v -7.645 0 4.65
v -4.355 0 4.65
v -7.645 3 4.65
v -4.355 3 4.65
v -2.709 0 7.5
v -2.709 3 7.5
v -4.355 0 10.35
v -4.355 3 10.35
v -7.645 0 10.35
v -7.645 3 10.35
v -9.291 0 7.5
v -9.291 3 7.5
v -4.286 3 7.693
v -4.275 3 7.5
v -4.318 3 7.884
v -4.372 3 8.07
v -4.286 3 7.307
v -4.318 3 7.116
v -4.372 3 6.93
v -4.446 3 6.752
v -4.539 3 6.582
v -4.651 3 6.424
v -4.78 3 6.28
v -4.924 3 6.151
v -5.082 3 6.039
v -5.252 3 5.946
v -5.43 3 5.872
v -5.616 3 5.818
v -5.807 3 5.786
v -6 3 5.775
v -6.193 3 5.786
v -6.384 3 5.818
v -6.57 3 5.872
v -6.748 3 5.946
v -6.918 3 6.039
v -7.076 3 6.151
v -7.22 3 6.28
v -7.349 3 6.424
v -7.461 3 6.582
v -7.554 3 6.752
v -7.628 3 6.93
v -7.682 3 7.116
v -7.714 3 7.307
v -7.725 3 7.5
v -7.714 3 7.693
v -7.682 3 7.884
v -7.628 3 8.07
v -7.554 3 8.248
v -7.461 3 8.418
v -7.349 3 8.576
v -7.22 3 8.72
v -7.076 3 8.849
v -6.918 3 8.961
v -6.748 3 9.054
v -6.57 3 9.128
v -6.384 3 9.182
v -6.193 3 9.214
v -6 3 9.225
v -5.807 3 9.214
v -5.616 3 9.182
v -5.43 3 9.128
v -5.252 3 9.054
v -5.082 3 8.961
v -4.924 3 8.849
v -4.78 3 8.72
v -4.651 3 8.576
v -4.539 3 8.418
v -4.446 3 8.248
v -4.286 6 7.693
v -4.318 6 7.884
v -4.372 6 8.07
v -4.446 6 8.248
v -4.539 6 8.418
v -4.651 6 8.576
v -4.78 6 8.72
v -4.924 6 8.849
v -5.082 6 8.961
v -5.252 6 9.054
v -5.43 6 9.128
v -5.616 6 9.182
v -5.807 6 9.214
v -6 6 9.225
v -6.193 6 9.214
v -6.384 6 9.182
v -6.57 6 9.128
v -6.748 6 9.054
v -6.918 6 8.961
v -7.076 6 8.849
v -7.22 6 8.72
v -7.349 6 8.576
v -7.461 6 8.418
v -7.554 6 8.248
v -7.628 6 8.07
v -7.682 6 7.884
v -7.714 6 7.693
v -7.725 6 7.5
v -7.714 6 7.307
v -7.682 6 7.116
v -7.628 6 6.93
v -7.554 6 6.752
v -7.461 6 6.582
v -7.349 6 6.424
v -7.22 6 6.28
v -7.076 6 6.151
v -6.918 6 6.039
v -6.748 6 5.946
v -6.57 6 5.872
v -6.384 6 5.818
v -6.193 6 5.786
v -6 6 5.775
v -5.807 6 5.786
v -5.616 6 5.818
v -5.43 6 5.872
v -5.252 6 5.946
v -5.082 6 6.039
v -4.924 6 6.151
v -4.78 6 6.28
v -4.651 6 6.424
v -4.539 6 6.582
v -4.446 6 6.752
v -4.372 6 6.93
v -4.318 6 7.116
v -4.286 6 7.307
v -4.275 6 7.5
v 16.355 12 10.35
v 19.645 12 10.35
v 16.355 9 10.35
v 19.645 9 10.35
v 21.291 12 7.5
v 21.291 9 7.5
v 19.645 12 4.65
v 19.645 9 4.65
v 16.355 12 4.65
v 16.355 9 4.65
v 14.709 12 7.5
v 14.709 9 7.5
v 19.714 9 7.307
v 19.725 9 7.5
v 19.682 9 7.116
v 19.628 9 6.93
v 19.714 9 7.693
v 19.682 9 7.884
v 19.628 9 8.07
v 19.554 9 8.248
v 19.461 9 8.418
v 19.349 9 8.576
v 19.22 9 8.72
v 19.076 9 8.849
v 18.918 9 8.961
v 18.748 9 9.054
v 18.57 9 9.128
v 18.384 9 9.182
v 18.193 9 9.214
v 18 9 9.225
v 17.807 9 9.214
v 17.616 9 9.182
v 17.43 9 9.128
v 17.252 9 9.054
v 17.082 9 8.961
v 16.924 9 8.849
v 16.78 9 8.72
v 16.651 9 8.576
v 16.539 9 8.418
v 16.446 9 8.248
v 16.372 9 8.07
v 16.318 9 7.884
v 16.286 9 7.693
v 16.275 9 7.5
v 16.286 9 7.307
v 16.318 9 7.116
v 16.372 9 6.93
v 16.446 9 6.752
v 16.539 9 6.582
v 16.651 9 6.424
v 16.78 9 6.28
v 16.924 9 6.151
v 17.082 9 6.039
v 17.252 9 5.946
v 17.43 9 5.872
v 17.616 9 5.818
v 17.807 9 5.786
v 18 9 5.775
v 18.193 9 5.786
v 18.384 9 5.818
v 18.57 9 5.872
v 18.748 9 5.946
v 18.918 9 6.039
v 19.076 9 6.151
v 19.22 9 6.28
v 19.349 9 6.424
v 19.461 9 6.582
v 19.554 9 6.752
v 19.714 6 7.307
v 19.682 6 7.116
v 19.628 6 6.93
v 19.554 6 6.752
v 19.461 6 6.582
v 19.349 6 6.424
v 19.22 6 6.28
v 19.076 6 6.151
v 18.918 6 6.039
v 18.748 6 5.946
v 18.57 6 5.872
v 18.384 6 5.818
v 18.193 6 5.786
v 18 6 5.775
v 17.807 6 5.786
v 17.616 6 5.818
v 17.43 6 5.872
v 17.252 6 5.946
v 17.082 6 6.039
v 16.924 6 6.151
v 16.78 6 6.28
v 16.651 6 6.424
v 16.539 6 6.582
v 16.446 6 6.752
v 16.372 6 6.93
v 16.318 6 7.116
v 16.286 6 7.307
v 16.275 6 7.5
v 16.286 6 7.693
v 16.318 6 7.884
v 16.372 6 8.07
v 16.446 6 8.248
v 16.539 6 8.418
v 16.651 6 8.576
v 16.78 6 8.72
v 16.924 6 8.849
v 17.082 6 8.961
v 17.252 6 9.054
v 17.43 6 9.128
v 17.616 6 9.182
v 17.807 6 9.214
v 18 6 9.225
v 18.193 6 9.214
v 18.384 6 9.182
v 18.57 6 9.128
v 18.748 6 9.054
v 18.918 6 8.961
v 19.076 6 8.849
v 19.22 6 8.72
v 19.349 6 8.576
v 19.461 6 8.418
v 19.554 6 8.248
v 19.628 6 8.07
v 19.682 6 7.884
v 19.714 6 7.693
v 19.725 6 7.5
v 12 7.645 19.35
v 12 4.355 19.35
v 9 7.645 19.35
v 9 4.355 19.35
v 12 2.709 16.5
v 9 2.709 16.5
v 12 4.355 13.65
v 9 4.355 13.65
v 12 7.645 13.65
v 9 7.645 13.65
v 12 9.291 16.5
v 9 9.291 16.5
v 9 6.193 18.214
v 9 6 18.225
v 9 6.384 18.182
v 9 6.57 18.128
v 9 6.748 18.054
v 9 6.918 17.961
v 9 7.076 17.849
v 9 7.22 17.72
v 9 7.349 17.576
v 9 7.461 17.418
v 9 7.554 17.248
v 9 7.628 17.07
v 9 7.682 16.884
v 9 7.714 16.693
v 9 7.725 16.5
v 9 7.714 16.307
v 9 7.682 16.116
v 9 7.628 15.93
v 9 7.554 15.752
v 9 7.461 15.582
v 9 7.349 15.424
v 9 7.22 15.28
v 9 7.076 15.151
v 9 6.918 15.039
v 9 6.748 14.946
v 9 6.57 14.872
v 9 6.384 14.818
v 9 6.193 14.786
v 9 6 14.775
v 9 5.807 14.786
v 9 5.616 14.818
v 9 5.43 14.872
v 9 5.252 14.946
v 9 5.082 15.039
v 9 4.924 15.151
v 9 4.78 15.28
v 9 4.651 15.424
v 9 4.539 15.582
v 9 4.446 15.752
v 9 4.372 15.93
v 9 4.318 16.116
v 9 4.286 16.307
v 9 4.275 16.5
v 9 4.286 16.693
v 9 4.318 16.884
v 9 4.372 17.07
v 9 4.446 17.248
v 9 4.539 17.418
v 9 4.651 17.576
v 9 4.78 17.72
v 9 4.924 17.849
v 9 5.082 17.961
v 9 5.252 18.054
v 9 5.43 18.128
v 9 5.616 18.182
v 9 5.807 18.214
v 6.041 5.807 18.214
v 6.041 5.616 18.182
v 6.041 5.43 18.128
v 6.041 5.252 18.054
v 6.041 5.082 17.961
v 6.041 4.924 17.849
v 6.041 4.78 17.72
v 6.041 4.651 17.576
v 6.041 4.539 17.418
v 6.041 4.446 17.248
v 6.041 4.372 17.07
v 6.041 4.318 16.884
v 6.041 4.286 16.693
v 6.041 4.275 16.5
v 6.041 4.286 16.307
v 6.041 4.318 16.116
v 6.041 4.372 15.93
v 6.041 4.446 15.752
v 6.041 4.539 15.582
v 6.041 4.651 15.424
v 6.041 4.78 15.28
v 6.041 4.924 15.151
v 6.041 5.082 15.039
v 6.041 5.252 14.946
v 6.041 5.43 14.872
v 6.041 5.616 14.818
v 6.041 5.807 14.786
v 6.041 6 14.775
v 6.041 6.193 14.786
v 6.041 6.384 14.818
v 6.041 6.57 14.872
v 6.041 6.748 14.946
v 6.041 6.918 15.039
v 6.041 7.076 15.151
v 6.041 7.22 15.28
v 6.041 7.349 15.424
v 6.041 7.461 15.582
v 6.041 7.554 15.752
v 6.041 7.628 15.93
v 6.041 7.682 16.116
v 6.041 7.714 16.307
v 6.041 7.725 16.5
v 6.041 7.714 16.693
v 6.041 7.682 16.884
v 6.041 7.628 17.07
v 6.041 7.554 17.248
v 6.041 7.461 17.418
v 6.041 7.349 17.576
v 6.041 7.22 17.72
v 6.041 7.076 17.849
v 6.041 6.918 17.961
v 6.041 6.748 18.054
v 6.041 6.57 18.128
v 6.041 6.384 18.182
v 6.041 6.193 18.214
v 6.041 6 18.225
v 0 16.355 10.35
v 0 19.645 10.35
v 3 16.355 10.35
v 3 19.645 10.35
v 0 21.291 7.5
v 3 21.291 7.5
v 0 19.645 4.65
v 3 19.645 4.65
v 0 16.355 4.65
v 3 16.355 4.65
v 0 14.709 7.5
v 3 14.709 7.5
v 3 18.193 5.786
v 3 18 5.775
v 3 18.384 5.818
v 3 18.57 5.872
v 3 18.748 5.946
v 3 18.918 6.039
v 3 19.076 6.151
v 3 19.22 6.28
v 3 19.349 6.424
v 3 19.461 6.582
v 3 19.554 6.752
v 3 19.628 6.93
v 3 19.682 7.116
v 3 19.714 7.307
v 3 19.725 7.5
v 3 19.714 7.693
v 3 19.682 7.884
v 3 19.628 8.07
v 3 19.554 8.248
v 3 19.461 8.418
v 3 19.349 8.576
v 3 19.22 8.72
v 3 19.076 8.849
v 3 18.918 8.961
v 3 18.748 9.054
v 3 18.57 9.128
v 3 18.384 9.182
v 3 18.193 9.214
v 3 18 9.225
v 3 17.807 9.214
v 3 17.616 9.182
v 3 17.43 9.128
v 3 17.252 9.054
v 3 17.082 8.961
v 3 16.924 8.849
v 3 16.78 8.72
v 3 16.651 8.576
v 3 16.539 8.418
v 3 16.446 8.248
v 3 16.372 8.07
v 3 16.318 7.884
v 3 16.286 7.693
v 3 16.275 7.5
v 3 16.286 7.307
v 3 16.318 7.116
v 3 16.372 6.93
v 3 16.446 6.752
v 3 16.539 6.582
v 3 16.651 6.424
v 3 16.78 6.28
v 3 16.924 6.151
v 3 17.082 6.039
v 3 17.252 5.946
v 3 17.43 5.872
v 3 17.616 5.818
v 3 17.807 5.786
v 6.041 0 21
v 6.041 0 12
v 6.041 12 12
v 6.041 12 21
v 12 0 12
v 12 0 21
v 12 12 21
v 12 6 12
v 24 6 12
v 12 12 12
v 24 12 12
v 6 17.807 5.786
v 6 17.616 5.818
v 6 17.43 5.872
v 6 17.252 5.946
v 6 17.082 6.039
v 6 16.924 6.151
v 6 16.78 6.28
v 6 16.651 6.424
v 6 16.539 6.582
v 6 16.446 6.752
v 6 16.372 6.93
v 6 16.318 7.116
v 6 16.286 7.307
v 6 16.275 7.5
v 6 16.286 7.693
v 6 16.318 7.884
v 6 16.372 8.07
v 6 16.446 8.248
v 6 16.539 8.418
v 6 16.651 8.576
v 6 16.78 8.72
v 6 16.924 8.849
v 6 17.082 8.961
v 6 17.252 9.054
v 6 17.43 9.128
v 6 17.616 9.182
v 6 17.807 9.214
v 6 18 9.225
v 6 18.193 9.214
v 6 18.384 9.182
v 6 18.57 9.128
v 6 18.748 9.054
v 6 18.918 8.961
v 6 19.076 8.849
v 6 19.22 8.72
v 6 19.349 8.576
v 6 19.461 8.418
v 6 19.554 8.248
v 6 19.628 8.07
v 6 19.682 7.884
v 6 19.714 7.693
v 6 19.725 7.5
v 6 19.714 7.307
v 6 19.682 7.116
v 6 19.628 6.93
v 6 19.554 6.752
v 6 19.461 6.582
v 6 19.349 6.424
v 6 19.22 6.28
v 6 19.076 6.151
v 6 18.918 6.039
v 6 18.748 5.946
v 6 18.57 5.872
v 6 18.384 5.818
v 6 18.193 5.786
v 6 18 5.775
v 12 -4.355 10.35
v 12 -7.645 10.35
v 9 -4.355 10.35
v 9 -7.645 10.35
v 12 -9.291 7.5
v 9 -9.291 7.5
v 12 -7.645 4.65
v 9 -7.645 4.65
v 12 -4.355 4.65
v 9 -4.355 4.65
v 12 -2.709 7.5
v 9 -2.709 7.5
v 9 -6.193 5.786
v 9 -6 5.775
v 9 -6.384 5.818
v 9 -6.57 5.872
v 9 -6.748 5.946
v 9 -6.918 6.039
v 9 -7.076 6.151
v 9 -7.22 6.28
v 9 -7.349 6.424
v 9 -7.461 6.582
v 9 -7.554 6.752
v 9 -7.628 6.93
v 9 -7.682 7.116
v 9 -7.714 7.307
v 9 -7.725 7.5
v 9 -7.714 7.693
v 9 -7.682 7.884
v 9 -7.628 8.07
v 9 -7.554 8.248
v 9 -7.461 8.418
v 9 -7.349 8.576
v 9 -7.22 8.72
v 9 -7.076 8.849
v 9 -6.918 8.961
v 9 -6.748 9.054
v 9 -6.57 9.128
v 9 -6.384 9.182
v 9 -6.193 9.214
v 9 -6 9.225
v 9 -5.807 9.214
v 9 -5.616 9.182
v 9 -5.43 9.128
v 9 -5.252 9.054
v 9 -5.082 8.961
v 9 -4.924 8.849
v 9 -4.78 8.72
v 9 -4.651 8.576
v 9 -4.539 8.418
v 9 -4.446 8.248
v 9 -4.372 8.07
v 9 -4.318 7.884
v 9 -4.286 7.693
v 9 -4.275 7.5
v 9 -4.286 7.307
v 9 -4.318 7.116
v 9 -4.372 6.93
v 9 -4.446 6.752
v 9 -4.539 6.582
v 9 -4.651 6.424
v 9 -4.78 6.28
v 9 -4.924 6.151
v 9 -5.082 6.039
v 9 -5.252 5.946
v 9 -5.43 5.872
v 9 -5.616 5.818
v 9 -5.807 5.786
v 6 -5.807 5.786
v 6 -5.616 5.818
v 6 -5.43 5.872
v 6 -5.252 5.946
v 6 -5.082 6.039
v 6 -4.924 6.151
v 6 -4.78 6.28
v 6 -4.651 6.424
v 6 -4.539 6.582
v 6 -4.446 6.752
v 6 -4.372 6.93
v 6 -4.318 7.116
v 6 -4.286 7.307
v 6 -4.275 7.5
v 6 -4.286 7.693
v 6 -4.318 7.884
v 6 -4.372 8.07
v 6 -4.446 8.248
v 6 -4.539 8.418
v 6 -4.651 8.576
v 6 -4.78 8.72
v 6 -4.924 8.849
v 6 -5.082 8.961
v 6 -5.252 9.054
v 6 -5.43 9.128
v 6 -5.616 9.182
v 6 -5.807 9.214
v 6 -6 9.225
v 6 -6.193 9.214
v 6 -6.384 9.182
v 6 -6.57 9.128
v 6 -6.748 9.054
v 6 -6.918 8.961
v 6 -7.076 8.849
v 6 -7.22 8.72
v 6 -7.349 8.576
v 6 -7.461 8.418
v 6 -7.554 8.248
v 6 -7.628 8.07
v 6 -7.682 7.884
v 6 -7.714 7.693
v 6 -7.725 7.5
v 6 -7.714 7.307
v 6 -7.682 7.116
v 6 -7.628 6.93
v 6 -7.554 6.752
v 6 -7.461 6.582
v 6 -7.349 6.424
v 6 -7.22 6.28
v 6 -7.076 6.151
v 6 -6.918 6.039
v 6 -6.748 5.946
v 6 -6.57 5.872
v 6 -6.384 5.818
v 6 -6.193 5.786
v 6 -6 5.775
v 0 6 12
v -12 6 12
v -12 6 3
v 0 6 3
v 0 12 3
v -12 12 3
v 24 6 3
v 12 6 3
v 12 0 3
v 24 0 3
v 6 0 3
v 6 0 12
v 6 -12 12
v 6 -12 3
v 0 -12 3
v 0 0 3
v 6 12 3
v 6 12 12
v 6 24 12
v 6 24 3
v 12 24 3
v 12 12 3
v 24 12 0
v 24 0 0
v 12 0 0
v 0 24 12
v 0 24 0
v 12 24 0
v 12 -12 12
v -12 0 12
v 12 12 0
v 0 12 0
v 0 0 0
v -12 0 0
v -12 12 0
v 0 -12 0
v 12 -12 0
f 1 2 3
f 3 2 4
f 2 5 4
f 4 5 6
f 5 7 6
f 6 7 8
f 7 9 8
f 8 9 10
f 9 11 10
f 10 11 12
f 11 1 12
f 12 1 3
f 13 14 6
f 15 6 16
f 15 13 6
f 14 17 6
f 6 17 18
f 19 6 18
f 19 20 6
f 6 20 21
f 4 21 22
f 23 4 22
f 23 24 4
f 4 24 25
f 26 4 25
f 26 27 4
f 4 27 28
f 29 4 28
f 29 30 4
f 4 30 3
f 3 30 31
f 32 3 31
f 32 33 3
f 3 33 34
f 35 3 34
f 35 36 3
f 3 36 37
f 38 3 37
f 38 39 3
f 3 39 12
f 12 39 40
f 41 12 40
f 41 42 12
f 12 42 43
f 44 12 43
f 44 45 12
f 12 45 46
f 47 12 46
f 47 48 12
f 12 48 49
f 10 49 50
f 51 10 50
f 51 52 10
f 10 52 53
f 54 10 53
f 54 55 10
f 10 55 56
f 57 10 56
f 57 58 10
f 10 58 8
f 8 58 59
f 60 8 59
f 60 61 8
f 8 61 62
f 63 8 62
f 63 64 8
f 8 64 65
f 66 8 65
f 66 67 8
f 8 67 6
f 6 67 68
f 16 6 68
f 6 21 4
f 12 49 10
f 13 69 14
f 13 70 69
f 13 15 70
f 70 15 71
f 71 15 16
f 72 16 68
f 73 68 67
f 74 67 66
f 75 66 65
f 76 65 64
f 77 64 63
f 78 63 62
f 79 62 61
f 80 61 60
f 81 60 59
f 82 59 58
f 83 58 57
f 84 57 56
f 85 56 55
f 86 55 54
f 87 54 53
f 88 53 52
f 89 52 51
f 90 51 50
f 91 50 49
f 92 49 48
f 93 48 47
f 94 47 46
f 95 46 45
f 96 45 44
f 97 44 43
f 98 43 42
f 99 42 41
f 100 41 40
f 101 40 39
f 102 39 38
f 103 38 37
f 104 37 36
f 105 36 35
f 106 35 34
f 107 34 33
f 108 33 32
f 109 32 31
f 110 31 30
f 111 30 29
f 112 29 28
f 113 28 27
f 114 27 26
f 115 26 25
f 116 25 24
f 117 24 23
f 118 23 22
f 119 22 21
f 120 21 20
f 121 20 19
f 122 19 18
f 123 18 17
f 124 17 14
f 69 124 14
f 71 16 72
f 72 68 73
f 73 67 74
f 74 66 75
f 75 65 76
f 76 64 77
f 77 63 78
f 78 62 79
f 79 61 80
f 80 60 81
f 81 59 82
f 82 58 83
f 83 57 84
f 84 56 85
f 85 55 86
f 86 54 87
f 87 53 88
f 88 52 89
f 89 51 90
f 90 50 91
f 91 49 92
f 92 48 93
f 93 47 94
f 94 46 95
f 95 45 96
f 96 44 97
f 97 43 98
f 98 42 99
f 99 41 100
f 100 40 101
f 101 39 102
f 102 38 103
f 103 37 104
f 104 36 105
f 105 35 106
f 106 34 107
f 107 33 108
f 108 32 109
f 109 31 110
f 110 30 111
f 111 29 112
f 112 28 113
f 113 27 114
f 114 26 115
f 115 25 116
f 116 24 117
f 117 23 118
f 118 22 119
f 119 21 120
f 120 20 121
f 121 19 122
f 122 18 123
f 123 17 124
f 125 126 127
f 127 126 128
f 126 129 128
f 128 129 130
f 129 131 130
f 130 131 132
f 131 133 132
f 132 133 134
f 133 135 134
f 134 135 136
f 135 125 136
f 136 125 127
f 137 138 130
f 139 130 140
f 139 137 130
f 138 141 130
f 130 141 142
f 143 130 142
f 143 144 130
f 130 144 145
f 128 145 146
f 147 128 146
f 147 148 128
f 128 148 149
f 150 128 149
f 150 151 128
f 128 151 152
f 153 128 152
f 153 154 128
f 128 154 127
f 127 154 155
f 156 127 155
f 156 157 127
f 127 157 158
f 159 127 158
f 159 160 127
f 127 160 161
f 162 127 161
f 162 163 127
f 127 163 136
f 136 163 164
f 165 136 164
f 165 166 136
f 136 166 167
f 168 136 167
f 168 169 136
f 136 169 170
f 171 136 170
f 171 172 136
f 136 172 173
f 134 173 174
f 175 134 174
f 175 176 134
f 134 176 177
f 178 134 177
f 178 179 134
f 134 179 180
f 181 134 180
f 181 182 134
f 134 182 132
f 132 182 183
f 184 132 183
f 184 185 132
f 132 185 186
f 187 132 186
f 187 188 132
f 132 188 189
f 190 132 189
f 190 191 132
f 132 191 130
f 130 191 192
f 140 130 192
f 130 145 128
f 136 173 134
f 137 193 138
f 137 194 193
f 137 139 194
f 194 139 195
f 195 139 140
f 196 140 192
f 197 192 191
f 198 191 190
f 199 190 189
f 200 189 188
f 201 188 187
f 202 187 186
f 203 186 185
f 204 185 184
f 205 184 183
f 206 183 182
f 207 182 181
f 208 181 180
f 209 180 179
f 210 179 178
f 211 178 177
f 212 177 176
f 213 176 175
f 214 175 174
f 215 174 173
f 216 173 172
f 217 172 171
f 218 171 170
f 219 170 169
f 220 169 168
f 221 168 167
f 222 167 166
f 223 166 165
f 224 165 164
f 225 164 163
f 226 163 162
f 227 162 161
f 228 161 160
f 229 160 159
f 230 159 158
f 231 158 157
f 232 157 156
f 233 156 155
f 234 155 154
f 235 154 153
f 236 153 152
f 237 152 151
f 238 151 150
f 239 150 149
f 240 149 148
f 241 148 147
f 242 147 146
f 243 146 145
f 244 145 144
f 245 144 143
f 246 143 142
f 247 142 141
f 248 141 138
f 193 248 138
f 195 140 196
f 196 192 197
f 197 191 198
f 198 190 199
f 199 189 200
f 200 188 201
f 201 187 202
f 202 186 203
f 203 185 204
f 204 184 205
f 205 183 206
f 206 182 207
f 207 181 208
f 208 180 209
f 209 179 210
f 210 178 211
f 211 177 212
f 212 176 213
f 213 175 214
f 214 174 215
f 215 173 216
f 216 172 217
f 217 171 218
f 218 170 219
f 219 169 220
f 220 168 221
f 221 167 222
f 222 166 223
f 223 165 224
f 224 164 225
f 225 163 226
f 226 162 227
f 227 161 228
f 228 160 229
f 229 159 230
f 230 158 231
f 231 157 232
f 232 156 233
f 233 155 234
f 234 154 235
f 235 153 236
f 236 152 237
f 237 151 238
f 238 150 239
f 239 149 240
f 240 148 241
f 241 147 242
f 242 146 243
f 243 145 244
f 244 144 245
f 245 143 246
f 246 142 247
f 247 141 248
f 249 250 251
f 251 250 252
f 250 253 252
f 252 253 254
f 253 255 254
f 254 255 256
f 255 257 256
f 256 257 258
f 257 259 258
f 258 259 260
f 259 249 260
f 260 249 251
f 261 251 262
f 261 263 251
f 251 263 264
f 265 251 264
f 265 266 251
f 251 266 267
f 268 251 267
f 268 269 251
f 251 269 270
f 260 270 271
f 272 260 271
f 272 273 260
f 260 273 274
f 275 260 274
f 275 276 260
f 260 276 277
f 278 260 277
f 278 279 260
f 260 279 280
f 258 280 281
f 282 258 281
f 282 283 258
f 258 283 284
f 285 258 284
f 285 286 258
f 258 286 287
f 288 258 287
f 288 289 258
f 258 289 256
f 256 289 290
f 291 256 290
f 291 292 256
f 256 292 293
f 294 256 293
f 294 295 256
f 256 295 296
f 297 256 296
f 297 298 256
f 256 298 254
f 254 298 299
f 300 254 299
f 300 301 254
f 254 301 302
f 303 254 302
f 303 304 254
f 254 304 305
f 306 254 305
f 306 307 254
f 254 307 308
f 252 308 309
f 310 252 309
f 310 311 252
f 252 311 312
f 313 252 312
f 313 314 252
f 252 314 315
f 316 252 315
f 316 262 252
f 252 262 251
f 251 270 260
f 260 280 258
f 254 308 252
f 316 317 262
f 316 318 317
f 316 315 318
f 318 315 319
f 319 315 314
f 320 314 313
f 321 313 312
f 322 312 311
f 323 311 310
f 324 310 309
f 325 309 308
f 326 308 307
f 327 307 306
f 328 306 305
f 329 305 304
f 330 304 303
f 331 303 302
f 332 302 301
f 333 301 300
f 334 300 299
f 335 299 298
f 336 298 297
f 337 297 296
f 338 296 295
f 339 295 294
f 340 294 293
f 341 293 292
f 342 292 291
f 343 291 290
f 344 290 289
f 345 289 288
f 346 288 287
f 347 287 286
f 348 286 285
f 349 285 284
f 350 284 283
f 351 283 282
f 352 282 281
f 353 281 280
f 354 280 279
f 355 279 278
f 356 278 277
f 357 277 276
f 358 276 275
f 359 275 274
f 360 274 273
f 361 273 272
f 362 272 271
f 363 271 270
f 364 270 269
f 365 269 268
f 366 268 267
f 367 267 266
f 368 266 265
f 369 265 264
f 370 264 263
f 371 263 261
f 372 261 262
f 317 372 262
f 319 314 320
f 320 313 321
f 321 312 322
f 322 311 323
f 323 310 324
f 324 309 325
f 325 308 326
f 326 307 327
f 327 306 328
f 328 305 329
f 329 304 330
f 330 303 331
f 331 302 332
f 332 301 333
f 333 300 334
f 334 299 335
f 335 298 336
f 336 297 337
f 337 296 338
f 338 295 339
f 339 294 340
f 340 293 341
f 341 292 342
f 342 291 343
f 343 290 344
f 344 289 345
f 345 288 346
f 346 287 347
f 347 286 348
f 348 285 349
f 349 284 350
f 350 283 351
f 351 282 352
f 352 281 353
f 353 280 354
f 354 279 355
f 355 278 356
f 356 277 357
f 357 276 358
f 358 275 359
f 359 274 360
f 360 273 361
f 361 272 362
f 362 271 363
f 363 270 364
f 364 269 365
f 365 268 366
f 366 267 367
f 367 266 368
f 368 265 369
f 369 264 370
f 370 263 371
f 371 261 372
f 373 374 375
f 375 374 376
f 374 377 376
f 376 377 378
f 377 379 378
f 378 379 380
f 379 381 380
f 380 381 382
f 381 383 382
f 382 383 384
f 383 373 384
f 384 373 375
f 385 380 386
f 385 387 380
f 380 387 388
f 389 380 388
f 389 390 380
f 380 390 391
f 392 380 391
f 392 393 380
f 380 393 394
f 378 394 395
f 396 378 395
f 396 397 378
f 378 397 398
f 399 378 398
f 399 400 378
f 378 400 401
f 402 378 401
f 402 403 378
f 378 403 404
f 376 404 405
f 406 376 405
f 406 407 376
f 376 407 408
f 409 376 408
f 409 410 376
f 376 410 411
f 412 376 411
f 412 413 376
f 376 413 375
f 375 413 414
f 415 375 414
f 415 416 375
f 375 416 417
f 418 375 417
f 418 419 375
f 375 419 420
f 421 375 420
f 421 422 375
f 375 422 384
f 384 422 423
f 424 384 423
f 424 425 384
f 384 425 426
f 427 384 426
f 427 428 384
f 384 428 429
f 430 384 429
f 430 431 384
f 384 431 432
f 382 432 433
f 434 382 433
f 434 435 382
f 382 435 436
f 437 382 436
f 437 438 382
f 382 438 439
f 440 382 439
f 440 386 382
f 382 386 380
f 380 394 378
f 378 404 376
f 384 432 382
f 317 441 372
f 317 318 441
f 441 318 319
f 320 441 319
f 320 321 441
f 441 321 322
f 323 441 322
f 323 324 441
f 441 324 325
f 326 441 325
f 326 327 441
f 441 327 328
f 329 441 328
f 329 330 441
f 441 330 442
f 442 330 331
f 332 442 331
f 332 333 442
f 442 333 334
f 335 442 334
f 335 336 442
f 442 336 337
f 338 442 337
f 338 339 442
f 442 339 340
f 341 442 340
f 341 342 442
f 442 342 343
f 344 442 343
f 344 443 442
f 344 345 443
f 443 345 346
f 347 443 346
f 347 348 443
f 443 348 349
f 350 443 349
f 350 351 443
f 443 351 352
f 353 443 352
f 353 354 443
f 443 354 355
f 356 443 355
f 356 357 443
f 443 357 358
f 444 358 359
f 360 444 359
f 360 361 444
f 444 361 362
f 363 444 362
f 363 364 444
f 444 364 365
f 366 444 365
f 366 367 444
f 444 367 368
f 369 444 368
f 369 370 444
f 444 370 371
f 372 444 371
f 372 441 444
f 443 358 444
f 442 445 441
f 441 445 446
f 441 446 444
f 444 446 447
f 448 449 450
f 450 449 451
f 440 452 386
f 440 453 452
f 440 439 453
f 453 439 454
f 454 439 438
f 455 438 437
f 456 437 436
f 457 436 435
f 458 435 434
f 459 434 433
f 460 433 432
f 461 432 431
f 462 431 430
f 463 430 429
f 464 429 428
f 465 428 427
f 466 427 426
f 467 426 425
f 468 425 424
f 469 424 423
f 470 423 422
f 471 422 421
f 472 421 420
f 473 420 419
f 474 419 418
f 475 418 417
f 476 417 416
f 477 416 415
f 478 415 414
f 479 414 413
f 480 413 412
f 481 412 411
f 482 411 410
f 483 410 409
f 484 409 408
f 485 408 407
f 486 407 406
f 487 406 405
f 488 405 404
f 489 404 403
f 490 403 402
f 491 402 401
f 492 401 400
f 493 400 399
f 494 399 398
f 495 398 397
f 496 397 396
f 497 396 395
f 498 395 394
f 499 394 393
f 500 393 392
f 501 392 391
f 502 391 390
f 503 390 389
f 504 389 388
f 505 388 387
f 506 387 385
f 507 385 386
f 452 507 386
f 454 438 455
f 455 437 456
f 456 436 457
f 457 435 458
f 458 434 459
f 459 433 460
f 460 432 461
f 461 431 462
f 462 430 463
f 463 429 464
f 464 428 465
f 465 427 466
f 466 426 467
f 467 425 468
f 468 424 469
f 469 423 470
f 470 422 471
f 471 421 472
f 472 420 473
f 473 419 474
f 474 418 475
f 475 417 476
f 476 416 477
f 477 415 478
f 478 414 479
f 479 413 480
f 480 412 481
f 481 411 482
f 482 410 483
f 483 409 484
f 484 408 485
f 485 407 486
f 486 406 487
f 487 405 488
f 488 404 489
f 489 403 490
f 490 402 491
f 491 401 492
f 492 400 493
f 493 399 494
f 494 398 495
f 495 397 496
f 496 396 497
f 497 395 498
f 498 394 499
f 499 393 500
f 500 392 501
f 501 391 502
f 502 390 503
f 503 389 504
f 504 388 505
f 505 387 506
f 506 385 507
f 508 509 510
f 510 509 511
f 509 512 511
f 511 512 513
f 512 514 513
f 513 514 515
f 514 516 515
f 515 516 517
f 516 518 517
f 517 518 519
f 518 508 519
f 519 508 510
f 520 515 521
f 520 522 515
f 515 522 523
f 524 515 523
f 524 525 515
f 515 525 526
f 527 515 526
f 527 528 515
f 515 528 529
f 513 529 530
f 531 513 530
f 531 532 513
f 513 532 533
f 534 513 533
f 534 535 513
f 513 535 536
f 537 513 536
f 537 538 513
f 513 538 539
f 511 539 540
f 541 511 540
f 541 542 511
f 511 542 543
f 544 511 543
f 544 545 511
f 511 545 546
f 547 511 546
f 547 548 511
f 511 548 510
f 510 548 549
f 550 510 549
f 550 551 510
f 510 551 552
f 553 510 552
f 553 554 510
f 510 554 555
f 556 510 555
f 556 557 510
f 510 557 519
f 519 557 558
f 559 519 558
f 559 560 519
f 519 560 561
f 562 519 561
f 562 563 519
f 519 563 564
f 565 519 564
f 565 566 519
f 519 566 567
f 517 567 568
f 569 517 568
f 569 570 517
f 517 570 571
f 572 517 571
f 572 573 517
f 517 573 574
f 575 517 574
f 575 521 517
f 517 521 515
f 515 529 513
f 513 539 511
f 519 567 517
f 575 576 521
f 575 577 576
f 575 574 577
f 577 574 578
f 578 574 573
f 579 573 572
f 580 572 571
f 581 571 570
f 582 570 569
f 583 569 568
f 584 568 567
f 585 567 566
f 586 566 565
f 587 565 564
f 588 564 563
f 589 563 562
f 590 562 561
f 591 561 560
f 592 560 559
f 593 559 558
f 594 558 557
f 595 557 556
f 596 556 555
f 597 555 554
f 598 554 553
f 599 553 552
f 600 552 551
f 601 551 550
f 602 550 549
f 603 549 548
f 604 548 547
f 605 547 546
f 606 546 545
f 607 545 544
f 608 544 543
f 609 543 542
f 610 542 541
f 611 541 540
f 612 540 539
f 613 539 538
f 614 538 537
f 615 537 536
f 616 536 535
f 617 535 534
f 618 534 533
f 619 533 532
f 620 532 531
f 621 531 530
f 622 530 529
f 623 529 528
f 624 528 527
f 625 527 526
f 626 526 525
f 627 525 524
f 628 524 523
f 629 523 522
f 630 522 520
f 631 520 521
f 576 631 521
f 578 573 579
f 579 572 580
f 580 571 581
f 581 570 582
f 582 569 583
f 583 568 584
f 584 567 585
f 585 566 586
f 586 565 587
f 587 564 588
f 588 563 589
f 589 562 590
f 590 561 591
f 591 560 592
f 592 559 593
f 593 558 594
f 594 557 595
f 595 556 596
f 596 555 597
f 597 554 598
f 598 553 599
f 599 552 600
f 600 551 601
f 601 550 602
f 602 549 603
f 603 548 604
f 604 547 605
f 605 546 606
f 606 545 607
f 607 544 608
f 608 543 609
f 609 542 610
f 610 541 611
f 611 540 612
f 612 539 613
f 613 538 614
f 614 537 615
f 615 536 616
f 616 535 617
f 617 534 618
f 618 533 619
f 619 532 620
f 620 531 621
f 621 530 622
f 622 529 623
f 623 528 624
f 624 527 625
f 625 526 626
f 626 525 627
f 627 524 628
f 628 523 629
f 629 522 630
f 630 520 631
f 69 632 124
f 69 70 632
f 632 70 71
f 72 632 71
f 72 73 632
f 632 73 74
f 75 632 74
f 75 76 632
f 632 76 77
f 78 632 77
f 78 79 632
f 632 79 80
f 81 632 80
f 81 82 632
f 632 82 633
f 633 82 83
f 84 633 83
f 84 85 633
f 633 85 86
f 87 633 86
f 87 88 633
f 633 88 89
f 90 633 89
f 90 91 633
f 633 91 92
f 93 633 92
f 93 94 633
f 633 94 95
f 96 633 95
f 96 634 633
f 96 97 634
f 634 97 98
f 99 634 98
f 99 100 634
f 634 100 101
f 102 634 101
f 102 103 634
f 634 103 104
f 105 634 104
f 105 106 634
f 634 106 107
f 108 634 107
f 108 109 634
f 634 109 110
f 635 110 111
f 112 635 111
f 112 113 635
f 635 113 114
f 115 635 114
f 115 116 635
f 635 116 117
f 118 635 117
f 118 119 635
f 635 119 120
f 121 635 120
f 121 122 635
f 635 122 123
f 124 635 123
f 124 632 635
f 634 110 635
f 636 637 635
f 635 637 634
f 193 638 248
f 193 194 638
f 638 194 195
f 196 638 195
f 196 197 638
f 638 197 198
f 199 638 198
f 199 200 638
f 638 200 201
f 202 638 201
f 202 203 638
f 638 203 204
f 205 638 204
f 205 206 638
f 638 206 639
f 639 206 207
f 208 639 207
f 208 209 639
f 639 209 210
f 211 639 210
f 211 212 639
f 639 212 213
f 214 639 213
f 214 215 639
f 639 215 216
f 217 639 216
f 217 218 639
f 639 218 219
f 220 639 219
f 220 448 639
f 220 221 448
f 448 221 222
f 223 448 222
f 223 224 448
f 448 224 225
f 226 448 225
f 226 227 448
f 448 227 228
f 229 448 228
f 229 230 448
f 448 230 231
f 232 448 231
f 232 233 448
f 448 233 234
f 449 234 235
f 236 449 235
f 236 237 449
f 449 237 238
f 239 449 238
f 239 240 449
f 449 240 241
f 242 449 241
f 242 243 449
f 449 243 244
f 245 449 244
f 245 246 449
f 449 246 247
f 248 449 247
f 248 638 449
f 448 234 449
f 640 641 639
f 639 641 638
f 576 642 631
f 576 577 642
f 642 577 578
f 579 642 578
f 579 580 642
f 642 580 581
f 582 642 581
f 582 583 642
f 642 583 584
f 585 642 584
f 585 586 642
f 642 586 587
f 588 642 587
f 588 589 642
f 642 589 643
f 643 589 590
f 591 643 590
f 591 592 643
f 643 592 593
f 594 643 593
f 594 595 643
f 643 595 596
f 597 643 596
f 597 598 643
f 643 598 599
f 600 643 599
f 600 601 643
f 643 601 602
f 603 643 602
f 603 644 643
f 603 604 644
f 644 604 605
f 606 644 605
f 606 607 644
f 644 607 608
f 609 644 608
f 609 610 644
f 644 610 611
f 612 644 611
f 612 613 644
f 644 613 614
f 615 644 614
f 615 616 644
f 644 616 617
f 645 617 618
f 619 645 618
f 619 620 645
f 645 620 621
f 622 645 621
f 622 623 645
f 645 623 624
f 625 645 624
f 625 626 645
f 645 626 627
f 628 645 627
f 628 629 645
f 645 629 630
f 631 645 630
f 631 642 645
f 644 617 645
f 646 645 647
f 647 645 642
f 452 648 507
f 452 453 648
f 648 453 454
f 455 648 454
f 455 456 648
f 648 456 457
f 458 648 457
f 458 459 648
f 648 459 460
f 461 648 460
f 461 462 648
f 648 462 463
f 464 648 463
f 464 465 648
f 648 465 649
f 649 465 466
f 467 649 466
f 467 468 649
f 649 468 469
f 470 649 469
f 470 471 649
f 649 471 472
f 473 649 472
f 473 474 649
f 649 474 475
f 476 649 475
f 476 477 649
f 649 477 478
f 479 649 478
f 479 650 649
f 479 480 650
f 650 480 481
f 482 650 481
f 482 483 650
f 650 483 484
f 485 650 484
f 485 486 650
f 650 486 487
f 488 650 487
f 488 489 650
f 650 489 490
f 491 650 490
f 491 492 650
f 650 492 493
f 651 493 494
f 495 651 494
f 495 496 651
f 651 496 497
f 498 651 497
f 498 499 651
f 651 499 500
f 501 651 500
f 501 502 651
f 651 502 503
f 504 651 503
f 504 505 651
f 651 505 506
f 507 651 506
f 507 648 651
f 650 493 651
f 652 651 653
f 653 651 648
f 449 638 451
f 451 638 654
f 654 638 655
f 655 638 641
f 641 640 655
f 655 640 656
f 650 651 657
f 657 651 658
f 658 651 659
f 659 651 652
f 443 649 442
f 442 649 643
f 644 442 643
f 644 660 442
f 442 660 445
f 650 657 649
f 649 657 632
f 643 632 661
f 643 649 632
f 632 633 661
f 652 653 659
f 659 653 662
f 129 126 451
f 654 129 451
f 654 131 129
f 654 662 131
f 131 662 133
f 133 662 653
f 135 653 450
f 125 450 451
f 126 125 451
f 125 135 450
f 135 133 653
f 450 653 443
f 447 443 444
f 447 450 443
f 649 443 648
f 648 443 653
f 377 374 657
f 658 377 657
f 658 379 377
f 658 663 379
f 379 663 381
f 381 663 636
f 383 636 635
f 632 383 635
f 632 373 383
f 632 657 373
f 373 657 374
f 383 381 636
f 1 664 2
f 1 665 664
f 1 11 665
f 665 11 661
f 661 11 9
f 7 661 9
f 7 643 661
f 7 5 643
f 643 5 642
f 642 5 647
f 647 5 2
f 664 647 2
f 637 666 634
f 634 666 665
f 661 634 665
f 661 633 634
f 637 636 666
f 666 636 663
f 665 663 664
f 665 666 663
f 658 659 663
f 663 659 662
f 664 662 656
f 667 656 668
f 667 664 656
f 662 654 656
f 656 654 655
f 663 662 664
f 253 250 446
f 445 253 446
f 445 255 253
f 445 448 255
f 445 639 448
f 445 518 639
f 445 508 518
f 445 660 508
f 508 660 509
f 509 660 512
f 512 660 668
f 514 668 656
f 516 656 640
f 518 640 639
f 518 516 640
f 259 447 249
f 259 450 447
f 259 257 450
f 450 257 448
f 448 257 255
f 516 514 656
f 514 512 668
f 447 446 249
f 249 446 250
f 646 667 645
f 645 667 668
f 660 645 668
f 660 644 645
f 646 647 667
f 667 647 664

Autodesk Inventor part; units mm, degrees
ref_plane "YZ Plane" through (0, 0, 0) normal (1, 0, 0) x (0, 1, 0)
ref_plane "XZ Plane" through (0, 0, 0) normal (0, 1, 0) x (-1, 0, 0)
ref_plane "XY Plane" through (0, 0, 0) normal (0, 0, 1) x (1, 0, 0)
sketch "Sketch1" plane through (0, 0, 0) normal (0, 0, 1) x (1, 0, 0)
  line L0 (0, 0) -> (12, 0)
  line L1 (12, 0) -> (12, 12)
  line L2 (12, 12) -> (0, 12)
  line L3 (0, 12) -> (0, 0)
  line L4 (12, 12) -> (24, 12)
  line L5 (24, 12) -> (24, 0)
  line L6 (24, 0) -> (12, 0)
  line L7 (12, 0) -> (12, 12)
  line L8 (0, 0) -> (-12, 0)
  line L9 (-12, 0) -> (-12, 12)
  line L10 (-12, 12) -> (0, 12)
  line L11 (0, 12) -> (0, 0)
  line L12 (0, 0) -> (12, 0)
  line L13 (12, 0) -> (12, -12)
  line L14 (12, -12) -> (0, -12)
  line L15 (0, -12) -> (0, 0)
  line L16 (0, 12) -> (12, 12)
  line L17 (12, 12) -> (12, 24)
  line L18 (12, 24) -> (0, 24)
  line L19 (0, 24) -> (0, 12)
  dimension "d0" = 12
  dimension "d1" = 12
  dimension "d2" = 12
  dimension "d3" = 12
  dimension "d4" = 12
  dimension "d5" = 12
  dimension "d6" = 12
  dimension "d7" = 12
  dimension "d8" = 12
  dimension "d9" = 12
extrude "Extrusion1" add sketch "Sketch1" along normal blind 12
sketch "Sketch2" plane through (0, 0, 12) normal (0, 0, 1) x (1, 0, 0)
  line L0 (0, 0) -> (0, -12) projected
  line L1 (0, 0) -> (0, 12)
  line L2 (12, 12) -> (12, 24) projected
  line L3 (0, 12) -> (12, 12)
  line L4 (12, -12) -> (12, 0) projected
  line L5 (12, 12) -> (12, 0)
  line L6 (12, 0) -> (0, 0)
  line L7 (0, 6) -> (-12, 6)
  line L8 (-12, 12) -> (-12, 0) projected
  line L9 (12, 6) -> (24, 6)
  line L10 (24, 0) -> (24, 12) projected
  line L11 (6, 12) -> (6, 24)
  line L12 (6, 0) -> (6, -12)
  line L13 (0, -12) -> (12, -12) projected
  line L14 (-12, 6) -> (-12, 12)
  line L15 (0, 12) -> (-12, 12) projected
  line L16 (0, 12) -> (-12, 12)
  line L17 (12, 24) -> (0, 24) projected
  line L18 (6, 24) -> (12, 24)
  line L19 (12, 24) -> (12, 12)
  line L20 (24, 6) -> (24, 0)
  line L21 (6, -12) -> (0, -12)
  line L22 (12, 0) -> (24, 0)
extrude "Extrusion2" cut sketch "Sketch2" against normal blind 9 contours L6 L12 L13 L0 | L7 L8 L15 L1 | L5 L9 L10 L22 | L11 L17 L2 L3
sketch "Sketch3" plane through (6, 12, 12) normal (1, 0, 0) x (0, 0, -1)
  circle A0 centre (4.5, -18) radius 1.725
  line L0 (0, -24) -> (9, -24) projected
  line L1 (9, -24) -> (9, -12) projected
  point P0 (12, -12)
  dimension "d14" = 3.45
  dimension "d15" = 6
  dimension "d16" = 4.5
extrude "Extrusion3" cut sketch "Sketch3" along normal blind 3
sketch "Sketch4" plane through (12, -12, 0) normal (1, 0, 0) x (0, 0, -1)
  circle A0 centre (-7.5, 6) radius 1.725 projected
  line L0 (-10.35, 7.6454) -> (-7.5, 9.2909)
  line L1 (-7.5, 9.2909) -> (-4.65, 7.6454)
  line L2 (-4.65, 7.6454) -> (-4.65, 4.3546)
  line L3 (-4.65, 4.3546) -> (-7.5, 2.7091)
  line L4 (-7.5, 2.7091) -> (-10.35, 4.3546)
  line L5 (-10.35, 4.3546) -> (-10.35, 7.6454)
  point P0 (0, 12)
  dimension "d19" = 2.85
extrude "Extrusion4" cut sketch "Sketch4" against normal blind 3 contours A0 | L0 L1 L2 L3 L4 L5
sketch "Sketch5" plane through (6, 12, 12) normal (1, 0, 0) x (0, 0, -1)
  circle A0 centre (4.5, 6) radius 1.725
  line L0 (12, 12) -> (0, 12) projected
  line L1 (0, 0) -> (0, 12) projected
  point P0 (12, -12)
  dimension "d22" = 3.45
  dimension "d23" = 6
  dimension "d24" = 4.5
extrude "Extrusion5" cut sketch "Sketch5" against normal blind 3
sketch "Sketch6" plane through (0, 12, 0) normal (-1, 0, 0) x (0, 0, 1)
  circle A0 centre (7.5, 6) radius 1.725 projected
  line L0 (10.35, 4.3546) -> (7.5, 2.7091)
  line L1 (7.5, 2.7091) -> (4.65, 4.3546)
  line L2 (4.65, 4.3546) -> (4.65, 7.6454)
  line L3 (4.65, 7.6454) -> (7.5, 9.2909)
  line L4 (7.5, 9.2909) -> (10.35, 7.6454)
  line L5 (10.35, 7.6454) -> (10.35, 4.3546)
  point P0 (0, -12)
  dimension "d27" = 2.85
sketch "Sketch7" plane through (0, 0, 12) normal (0, 0, 1) x (1, 0, 0)
  line L0 (6, 12) -> (6, 24) projected
  line L1 (6.0413, 0) -> (6, 0)
  line L2 (6, 0) -> (6, 12)
  line L3 (6, 12) -> (6.0413, 12)
  line L4 (6.0413, 12) -> (6.0413, 0)
  line L5 (12, 0) -> (12, 6) projected
  line L6 (12, 0) -> (12, 12)
  line L7 (24, 12) -> (6, 12) projected
  line L8 (6, 0) -> (12, 0)
  point P0 (0, 0)
extrude "Extrusion6" add sketch "Sketch7" along normal blind 9 contours L4 L7 L6 L5 L8
extrude "Extrusion7" cut sketch "Sketch6" against normal blind 3 contours A0 | L0 L1 L2 L3 L4 L5
sketch "Sketch8" plane through (12, 12, 0) normal (0, 1, 0) x (1, 0, 0)
  point P0 (-12, 0)
sketch "Sketch9" plane through (12, -12, 0) normal (1, 0, 0) x (0, 0, -1)
  point P0 (0, 12)
sketch "Sketch10" plane through (12, -12, 0) normal (1, 0, 0) x (0, 0, -1)
  point P0 (0, 12)
sketch "Sketch11" plane through (6.0413, 0, 12) normal (-1, 0, 0) x (0, 0, 1)
  circle A0 centre (4.5, 6) radius 1.725
  line L0 (9, 0) -> (0, 0) projected
  line L1 (9, 12) -> (9, 0) projected
  point P0 (-12, 0)
  dimension "d32" = 3.45
  dimension "d33" = 6
  dimension "d34" = 4.5
extrude "Extrusion8" cut sketch "Sketch11" against normal blind 3
sketch "Sketch12" plane through (12, -12, 0) normal (1, 0, 0) x (0, 0, -1)
  point P0 (0, 12)
sketch "Sketch13" plane through (12, -12, 0) normal (1, 0, 0) x (0, 0, -1)
  circle A0 centre (-16.5, 18) radius 1.725 projected
  line L0 (-19.35, 19.6454) -> (-16.5, 21.2909)
  line L1 (-16.5, 21.2909) -> (-13.65, 19.6454)
  line L2 (-13.65, 19.6454) -> (-13.65, 16.3546)
  line L3 (-13.65, 16.3546) -> (-16.5, 14.7091)
  line L4 (-16.5, 14.7091) -> (-19.35, 16.3546)
  line L5 (-19.35, 16.3546) -> (-19.35, 19.6454)
  point P0 (0, 12)
  dimension "d37" = 2.85
extrude "Extrusion9" cut sketch "Sketch13" against normal blind 3 contours A0 | L0 L1 L2 L3 L4 L5
sketch "Sketch14" plane through (12, 6, 12) normal (0, -1, 0) x (1, 0, 0)
  circle A0 centre (6, -4.5) radius 1.725
  line L0 (0, 0) -> (12, 0) projected
  line L1 (12, 0) -> (12, -9) projected
  point P0 (-12, -12)
  dimension "d40" = 3.45
  dimension "d41" = 4.5
  dimension "d42" = 6
extrude "Extrusion10" cut sketch "Sketch14" against normal blind 3
sketch "Sketch15" plane through (12, 12, 0) normal (0, 1, 0) x (1, 0, 0)
  circle A0 centre (6, -7.5) radius 1.725 projected
  line L0 (4.3546, -10.35) -> (2.7091, -7.5)
  line L1 (2.7091, -7.5) -> (4.3546, -4.65)
  line L2 (4.3546, -4.65) -> (7.6454, -4.65)
  line L3 (7.6454, -4.65) -> (9.2909, -7.5)
  line L4 (9.2909, -7.5) -> (7.6454, -10.35)
  line L5 (7.6454, -10.35) -> (4.3546, -10.35)
  point P0 (-12, 0)
  dimension "d45" = 2.85
extrude "Extrusion11" cut sketch "Sketch15" against normal blind 3 contours A0 | L0 L1 L2 L3 L4 L5
sketch "Sketch16" plane through (-12, 6, 12) normal (0, 1, 0) x (1, 0, 0)
  circle A0 centre (6, 4.5) radius 1.725
  line L0 (12, 0) -> (0, 0) projected
  line L1 (0, 0) -> (0, 9) projected
  point P0 (12, 12)
  dimension "d48" = 3.45
  dimension "d49" = 4.5
  dimension "d50" = 6
extrude "Extrusion12" cut sketch "Sketch16" against normal blind 3
sketch "Sketch17" plane through (-12, 0, 0) normal (0, -1, 0) x (1, 0, 0)
  circle A0 centre (6, 7.5) radius 1.725 projected
  line L0 (4.3546, 4.65) -> (2.7091, 7.5)
  line L1 (2.7091, 7.5) -> (4.3546, 10.35)
  line L2 (4.3546, 10.35) -> (7.6454, 10.35)
  line L3 (7.6454, 10.35) -> (9.2909, 7.5)
  line L4 (9.2909, 7.5) -> (7.6454, 4.65)
  line L5 (7.6454, 4.65) -> (4.3546, 4.65)
  point P0 (12, 0)
  dimension "d53" = 2.85
extrude "Extrusion13" cut sketch "Sketch17" against normal blind 3 contours A0 | L0 L1 L2 L3 L4 L5
properties part number "fourwayVer2" material "ABS Plastic"
